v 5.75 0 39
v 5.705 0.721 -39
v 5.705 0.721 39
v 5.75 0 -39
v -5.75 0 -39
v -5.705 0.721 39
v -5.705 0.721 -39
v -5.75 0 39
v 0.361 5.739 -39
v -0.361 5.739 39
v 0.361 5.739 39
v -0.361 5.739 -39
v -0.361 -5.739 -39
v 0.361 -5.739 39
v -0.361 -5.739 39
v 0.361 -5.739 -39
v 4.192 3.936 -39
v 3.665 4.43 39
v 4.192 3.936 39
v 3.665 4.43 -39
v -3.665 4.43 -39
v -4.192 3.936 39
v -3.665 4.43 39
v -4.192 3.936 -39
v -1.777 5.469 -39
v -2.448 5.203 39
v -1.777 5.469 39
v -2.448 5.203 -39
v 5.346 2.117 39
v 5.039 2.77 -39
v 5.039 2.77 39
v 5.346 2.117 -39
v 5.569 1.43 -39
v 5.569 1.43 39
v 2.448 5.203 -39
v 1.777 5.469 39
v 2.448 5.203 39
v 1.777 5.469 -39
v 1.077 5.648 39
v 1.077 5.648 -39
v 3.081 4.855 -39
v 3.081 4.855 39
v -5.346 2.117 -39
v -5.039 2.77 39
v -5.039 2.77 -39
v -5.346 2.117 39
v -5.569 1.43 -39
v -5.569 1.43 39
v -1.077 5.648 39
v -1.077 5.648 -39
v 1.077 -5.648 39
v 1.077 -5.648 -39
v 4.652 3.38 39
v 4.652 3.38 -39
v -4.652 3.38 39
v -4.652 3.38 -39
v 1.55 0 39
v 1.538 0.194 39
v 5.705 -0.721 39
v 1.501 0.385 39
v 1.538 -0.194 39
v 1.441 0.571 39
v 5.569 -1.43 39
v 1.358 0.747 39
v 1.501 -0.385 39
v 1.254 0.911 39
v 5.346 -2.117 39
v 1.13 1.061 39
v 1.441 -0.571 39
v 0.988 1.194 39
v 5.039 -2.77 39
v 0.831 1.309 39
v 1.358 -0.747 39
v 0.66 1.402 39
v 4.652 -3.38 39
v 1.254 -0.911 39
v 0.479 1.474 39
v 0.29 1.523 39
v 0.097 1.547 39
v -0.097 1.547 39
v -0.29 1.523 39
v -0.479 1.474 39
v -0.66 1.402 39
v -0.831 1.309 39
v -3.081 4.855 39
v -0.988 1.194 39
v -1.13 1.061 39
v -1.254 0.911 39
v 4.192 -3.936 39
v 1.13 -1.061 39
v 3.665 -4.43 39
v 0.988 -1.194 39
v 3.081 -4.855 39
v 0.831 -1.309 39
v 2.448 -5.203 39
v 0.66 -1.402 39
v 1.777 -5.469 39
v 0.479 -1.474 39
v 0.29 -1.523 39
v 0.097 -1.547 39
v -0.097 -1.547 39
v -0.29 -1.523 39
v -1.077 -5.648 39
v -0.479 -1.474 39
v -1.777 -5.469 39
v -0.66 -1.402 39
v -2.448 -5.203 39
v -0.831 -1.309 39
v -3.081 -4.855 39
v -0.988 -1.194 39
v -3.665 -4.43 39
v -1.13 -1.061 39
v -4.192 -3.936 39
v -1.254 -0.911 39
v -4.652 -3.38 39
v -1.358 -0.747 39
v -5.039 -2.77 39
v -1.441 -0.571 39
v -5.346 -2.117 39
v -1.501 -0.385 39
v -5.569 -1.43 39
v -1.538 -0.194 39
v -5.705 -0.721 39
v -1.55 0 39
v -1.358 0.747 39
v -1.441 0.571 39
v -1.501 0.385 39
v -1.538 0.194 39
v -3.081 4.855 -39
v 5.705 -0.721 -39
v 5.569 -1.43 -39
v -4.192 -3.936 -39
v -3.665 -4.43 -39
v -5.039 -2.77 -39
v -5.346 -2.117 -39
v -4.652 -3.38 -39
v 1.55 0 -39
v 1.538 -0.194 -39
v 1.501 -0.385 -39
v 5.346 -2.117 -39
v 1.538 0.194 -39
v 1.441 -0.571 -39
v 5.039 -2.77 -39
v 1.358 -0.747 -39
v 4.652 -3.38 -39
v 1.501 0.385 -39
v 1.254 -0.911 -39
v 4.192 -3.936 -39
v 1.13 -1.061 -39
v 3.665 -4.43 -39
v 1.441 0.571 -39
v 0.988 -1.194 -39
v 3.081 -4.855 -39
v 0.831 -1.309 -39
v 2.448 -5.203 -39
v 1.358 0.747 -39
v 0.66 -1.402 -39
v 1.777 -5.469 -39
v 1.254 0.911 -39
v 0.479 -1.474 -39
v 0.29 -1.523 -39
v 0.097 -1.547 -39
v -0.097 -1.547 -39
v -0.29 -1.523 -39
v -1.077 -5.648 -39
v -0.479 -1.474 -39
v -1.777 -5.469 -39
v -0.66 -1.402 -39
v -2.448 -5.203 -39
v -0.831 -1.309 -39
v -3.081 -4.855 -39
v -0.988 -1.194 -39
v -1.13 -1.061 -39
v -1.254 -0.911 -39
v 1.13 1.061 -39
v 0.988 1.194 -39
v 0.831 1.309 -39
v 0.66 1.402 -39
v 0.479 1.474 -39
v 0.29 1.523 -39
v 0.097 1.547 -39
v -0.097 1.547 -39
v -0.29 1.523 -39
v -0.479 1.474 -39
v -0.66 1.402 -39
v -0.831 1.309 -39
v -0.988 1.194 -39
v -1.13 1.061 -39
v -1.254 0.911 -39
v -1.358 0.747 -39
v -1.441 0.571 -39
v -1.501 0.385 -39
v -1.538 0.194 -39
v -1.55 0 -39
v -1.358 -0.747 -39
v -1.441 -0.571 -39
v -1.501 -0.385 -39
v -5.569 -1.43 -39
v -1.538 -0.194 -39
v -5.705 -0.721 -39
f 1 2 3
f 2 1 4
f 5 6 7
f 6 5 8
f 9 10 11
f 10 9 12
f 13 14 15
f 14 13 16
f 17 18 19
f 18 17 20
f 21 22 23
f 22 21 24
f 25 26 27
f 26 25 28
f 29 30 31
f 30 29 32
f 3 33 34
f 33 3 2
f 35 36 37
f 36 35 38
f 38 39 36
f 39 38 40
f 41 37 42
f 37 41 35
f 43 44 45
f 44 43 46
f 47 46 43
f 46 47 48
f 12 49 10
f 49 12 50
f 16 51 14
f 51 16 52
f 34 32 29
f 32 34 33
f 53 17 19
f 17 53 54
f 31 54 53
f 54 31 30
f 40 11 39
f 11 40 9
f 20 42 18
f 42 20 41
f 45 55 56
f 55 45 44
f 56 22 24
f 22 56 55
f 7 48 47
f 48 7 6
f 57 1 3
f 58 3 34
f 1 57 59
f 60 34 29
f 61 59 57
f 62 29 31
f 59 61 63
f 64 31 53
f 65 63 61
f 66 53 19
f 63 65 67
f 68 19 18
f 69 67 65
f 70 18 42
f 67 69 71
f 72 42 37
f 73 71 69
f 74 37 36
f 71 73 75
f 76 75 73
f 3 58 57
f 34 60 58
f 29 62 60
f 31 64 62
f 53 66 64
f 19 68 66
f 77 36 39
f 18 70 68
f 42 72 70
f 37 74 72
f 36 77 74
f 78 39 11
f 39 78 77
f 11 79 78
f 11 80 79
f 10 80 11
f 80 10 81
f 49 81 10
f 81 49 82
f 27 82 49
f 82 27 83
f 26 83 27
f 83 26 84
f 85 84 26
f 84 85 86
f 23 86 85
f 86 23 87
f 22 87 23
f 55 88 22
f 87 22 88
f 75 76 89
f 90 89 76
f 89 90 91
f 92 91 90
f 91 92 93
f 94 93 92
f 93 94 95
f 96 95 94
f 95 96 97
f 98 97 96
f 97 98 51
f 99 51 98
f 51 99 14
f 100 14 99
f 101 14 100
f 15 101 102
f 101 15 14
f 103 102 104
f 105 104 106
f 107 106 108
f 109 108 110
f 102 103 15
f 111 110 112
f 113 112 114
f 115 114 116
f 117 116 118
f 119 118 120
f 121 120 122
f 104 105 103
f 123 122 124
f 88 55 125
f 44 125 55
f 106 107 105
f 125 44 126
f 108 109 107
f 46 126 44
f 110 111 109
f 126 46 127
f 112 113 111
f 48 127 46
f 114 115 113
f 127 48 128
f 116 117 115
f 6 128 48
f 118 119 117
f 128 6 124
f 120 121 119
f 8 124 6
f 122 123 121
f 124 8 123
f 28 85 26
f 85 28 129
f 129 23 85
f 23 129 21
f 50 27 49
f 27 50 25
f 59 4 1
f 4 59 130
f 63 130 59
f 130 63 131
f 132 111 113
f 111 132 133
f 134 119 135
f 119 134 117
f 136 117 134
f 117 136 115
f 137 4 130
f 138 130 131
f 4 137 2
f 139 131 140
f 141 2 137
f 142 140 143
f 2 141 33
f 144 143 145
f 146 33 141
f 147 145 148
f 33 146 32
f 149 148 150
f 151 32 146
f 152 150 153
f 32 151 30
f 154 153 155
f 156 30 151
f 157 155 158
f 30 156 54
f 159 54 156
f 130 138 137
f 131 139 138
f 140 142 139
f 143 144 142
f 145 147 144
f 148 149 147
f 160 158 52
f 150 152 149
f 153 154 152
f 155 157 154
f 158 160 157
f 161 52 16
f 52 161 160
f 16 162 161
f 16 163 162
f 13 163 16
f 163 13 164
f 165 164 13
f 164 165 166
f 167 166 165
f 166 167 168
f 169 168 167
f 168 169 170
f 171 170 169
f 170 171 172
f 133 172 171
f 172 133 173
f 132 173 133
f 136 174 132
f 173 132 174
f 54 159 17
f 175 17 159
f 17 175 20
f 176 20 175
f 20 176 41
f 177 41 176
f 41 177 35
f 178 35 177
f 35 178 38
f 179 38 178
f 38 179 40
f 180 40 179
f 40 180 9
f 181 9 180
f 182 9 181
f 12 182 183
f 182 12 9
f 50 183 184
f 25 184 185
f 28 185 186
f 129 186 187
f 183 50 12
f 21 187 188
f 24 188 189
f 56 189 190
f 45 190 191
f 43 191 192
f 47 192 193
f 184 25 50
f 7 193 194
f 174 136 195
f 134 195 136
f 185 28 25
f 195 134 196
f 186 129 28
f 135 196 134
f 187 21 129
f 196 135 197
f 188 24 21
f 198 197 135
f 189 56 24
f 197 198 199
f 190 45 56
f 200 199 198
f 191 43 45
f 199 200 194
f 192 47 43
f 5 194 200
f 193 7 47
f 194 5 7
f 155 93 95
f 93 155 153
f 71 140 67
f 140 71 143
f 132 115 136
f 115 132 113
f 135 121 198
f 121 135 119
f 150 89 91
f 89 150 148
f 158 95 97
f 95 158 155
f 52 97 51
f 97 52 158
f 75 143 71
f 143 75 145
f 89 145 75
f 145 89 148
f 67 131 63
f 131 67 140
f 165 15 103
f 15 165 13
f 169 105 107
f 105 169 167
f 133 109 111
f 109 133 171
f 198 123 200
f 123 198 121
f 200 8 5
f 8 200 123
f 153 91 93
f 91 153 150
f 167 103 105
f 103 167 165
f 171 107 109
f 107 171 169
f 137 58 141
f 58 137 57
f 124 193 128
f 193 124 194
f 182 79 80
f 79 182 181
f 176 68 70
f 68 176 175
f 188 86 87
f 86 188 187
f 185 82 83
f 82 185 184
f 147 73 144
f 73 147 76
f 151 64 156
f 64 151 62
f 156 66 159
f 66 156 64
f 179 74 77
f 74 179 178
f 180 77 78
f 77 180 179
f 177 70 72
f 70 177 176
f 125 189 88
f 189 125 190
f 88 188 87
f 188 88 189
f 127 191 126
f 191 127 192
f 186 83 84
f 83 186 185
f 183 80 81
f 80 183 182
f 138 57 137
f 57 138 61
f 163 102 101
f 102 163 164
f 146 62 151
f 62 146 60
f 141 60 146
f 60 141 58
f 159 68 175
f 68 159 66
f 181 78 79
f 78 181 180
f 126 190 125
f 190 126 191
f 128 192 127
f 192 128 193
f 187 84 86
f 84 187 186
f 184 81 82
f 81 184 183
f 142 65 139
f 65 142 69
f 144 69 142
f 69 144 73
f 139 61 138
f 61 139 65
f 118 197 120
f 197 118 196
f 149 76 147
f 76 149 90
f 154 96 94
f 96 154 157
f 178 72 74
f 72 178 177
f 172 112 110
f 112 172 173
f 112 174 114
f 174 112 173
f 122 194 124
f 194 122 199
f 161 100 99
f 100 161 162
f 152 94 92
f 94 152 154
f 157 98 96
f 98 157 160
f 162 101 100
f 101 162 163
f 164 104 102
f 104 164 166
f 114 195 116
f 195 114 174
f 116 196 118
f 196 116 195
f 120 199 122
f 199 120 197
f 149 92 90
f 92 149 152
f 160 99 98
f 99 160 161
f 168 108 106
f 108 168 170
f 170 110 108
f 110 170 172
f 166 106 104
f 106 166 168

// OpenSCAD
$fn = 50;


difference() {
	union() {
		translate(v = [0, 0, -39.0000000000]) {
			cylinder(h = 78, r = 5.7500000000);
		}
	}
	union() {
		translate(v = [0, 0, -100.0000000000]) {
			cylinder(h = 200, r = 1.5500000000);
		}
	}
}
